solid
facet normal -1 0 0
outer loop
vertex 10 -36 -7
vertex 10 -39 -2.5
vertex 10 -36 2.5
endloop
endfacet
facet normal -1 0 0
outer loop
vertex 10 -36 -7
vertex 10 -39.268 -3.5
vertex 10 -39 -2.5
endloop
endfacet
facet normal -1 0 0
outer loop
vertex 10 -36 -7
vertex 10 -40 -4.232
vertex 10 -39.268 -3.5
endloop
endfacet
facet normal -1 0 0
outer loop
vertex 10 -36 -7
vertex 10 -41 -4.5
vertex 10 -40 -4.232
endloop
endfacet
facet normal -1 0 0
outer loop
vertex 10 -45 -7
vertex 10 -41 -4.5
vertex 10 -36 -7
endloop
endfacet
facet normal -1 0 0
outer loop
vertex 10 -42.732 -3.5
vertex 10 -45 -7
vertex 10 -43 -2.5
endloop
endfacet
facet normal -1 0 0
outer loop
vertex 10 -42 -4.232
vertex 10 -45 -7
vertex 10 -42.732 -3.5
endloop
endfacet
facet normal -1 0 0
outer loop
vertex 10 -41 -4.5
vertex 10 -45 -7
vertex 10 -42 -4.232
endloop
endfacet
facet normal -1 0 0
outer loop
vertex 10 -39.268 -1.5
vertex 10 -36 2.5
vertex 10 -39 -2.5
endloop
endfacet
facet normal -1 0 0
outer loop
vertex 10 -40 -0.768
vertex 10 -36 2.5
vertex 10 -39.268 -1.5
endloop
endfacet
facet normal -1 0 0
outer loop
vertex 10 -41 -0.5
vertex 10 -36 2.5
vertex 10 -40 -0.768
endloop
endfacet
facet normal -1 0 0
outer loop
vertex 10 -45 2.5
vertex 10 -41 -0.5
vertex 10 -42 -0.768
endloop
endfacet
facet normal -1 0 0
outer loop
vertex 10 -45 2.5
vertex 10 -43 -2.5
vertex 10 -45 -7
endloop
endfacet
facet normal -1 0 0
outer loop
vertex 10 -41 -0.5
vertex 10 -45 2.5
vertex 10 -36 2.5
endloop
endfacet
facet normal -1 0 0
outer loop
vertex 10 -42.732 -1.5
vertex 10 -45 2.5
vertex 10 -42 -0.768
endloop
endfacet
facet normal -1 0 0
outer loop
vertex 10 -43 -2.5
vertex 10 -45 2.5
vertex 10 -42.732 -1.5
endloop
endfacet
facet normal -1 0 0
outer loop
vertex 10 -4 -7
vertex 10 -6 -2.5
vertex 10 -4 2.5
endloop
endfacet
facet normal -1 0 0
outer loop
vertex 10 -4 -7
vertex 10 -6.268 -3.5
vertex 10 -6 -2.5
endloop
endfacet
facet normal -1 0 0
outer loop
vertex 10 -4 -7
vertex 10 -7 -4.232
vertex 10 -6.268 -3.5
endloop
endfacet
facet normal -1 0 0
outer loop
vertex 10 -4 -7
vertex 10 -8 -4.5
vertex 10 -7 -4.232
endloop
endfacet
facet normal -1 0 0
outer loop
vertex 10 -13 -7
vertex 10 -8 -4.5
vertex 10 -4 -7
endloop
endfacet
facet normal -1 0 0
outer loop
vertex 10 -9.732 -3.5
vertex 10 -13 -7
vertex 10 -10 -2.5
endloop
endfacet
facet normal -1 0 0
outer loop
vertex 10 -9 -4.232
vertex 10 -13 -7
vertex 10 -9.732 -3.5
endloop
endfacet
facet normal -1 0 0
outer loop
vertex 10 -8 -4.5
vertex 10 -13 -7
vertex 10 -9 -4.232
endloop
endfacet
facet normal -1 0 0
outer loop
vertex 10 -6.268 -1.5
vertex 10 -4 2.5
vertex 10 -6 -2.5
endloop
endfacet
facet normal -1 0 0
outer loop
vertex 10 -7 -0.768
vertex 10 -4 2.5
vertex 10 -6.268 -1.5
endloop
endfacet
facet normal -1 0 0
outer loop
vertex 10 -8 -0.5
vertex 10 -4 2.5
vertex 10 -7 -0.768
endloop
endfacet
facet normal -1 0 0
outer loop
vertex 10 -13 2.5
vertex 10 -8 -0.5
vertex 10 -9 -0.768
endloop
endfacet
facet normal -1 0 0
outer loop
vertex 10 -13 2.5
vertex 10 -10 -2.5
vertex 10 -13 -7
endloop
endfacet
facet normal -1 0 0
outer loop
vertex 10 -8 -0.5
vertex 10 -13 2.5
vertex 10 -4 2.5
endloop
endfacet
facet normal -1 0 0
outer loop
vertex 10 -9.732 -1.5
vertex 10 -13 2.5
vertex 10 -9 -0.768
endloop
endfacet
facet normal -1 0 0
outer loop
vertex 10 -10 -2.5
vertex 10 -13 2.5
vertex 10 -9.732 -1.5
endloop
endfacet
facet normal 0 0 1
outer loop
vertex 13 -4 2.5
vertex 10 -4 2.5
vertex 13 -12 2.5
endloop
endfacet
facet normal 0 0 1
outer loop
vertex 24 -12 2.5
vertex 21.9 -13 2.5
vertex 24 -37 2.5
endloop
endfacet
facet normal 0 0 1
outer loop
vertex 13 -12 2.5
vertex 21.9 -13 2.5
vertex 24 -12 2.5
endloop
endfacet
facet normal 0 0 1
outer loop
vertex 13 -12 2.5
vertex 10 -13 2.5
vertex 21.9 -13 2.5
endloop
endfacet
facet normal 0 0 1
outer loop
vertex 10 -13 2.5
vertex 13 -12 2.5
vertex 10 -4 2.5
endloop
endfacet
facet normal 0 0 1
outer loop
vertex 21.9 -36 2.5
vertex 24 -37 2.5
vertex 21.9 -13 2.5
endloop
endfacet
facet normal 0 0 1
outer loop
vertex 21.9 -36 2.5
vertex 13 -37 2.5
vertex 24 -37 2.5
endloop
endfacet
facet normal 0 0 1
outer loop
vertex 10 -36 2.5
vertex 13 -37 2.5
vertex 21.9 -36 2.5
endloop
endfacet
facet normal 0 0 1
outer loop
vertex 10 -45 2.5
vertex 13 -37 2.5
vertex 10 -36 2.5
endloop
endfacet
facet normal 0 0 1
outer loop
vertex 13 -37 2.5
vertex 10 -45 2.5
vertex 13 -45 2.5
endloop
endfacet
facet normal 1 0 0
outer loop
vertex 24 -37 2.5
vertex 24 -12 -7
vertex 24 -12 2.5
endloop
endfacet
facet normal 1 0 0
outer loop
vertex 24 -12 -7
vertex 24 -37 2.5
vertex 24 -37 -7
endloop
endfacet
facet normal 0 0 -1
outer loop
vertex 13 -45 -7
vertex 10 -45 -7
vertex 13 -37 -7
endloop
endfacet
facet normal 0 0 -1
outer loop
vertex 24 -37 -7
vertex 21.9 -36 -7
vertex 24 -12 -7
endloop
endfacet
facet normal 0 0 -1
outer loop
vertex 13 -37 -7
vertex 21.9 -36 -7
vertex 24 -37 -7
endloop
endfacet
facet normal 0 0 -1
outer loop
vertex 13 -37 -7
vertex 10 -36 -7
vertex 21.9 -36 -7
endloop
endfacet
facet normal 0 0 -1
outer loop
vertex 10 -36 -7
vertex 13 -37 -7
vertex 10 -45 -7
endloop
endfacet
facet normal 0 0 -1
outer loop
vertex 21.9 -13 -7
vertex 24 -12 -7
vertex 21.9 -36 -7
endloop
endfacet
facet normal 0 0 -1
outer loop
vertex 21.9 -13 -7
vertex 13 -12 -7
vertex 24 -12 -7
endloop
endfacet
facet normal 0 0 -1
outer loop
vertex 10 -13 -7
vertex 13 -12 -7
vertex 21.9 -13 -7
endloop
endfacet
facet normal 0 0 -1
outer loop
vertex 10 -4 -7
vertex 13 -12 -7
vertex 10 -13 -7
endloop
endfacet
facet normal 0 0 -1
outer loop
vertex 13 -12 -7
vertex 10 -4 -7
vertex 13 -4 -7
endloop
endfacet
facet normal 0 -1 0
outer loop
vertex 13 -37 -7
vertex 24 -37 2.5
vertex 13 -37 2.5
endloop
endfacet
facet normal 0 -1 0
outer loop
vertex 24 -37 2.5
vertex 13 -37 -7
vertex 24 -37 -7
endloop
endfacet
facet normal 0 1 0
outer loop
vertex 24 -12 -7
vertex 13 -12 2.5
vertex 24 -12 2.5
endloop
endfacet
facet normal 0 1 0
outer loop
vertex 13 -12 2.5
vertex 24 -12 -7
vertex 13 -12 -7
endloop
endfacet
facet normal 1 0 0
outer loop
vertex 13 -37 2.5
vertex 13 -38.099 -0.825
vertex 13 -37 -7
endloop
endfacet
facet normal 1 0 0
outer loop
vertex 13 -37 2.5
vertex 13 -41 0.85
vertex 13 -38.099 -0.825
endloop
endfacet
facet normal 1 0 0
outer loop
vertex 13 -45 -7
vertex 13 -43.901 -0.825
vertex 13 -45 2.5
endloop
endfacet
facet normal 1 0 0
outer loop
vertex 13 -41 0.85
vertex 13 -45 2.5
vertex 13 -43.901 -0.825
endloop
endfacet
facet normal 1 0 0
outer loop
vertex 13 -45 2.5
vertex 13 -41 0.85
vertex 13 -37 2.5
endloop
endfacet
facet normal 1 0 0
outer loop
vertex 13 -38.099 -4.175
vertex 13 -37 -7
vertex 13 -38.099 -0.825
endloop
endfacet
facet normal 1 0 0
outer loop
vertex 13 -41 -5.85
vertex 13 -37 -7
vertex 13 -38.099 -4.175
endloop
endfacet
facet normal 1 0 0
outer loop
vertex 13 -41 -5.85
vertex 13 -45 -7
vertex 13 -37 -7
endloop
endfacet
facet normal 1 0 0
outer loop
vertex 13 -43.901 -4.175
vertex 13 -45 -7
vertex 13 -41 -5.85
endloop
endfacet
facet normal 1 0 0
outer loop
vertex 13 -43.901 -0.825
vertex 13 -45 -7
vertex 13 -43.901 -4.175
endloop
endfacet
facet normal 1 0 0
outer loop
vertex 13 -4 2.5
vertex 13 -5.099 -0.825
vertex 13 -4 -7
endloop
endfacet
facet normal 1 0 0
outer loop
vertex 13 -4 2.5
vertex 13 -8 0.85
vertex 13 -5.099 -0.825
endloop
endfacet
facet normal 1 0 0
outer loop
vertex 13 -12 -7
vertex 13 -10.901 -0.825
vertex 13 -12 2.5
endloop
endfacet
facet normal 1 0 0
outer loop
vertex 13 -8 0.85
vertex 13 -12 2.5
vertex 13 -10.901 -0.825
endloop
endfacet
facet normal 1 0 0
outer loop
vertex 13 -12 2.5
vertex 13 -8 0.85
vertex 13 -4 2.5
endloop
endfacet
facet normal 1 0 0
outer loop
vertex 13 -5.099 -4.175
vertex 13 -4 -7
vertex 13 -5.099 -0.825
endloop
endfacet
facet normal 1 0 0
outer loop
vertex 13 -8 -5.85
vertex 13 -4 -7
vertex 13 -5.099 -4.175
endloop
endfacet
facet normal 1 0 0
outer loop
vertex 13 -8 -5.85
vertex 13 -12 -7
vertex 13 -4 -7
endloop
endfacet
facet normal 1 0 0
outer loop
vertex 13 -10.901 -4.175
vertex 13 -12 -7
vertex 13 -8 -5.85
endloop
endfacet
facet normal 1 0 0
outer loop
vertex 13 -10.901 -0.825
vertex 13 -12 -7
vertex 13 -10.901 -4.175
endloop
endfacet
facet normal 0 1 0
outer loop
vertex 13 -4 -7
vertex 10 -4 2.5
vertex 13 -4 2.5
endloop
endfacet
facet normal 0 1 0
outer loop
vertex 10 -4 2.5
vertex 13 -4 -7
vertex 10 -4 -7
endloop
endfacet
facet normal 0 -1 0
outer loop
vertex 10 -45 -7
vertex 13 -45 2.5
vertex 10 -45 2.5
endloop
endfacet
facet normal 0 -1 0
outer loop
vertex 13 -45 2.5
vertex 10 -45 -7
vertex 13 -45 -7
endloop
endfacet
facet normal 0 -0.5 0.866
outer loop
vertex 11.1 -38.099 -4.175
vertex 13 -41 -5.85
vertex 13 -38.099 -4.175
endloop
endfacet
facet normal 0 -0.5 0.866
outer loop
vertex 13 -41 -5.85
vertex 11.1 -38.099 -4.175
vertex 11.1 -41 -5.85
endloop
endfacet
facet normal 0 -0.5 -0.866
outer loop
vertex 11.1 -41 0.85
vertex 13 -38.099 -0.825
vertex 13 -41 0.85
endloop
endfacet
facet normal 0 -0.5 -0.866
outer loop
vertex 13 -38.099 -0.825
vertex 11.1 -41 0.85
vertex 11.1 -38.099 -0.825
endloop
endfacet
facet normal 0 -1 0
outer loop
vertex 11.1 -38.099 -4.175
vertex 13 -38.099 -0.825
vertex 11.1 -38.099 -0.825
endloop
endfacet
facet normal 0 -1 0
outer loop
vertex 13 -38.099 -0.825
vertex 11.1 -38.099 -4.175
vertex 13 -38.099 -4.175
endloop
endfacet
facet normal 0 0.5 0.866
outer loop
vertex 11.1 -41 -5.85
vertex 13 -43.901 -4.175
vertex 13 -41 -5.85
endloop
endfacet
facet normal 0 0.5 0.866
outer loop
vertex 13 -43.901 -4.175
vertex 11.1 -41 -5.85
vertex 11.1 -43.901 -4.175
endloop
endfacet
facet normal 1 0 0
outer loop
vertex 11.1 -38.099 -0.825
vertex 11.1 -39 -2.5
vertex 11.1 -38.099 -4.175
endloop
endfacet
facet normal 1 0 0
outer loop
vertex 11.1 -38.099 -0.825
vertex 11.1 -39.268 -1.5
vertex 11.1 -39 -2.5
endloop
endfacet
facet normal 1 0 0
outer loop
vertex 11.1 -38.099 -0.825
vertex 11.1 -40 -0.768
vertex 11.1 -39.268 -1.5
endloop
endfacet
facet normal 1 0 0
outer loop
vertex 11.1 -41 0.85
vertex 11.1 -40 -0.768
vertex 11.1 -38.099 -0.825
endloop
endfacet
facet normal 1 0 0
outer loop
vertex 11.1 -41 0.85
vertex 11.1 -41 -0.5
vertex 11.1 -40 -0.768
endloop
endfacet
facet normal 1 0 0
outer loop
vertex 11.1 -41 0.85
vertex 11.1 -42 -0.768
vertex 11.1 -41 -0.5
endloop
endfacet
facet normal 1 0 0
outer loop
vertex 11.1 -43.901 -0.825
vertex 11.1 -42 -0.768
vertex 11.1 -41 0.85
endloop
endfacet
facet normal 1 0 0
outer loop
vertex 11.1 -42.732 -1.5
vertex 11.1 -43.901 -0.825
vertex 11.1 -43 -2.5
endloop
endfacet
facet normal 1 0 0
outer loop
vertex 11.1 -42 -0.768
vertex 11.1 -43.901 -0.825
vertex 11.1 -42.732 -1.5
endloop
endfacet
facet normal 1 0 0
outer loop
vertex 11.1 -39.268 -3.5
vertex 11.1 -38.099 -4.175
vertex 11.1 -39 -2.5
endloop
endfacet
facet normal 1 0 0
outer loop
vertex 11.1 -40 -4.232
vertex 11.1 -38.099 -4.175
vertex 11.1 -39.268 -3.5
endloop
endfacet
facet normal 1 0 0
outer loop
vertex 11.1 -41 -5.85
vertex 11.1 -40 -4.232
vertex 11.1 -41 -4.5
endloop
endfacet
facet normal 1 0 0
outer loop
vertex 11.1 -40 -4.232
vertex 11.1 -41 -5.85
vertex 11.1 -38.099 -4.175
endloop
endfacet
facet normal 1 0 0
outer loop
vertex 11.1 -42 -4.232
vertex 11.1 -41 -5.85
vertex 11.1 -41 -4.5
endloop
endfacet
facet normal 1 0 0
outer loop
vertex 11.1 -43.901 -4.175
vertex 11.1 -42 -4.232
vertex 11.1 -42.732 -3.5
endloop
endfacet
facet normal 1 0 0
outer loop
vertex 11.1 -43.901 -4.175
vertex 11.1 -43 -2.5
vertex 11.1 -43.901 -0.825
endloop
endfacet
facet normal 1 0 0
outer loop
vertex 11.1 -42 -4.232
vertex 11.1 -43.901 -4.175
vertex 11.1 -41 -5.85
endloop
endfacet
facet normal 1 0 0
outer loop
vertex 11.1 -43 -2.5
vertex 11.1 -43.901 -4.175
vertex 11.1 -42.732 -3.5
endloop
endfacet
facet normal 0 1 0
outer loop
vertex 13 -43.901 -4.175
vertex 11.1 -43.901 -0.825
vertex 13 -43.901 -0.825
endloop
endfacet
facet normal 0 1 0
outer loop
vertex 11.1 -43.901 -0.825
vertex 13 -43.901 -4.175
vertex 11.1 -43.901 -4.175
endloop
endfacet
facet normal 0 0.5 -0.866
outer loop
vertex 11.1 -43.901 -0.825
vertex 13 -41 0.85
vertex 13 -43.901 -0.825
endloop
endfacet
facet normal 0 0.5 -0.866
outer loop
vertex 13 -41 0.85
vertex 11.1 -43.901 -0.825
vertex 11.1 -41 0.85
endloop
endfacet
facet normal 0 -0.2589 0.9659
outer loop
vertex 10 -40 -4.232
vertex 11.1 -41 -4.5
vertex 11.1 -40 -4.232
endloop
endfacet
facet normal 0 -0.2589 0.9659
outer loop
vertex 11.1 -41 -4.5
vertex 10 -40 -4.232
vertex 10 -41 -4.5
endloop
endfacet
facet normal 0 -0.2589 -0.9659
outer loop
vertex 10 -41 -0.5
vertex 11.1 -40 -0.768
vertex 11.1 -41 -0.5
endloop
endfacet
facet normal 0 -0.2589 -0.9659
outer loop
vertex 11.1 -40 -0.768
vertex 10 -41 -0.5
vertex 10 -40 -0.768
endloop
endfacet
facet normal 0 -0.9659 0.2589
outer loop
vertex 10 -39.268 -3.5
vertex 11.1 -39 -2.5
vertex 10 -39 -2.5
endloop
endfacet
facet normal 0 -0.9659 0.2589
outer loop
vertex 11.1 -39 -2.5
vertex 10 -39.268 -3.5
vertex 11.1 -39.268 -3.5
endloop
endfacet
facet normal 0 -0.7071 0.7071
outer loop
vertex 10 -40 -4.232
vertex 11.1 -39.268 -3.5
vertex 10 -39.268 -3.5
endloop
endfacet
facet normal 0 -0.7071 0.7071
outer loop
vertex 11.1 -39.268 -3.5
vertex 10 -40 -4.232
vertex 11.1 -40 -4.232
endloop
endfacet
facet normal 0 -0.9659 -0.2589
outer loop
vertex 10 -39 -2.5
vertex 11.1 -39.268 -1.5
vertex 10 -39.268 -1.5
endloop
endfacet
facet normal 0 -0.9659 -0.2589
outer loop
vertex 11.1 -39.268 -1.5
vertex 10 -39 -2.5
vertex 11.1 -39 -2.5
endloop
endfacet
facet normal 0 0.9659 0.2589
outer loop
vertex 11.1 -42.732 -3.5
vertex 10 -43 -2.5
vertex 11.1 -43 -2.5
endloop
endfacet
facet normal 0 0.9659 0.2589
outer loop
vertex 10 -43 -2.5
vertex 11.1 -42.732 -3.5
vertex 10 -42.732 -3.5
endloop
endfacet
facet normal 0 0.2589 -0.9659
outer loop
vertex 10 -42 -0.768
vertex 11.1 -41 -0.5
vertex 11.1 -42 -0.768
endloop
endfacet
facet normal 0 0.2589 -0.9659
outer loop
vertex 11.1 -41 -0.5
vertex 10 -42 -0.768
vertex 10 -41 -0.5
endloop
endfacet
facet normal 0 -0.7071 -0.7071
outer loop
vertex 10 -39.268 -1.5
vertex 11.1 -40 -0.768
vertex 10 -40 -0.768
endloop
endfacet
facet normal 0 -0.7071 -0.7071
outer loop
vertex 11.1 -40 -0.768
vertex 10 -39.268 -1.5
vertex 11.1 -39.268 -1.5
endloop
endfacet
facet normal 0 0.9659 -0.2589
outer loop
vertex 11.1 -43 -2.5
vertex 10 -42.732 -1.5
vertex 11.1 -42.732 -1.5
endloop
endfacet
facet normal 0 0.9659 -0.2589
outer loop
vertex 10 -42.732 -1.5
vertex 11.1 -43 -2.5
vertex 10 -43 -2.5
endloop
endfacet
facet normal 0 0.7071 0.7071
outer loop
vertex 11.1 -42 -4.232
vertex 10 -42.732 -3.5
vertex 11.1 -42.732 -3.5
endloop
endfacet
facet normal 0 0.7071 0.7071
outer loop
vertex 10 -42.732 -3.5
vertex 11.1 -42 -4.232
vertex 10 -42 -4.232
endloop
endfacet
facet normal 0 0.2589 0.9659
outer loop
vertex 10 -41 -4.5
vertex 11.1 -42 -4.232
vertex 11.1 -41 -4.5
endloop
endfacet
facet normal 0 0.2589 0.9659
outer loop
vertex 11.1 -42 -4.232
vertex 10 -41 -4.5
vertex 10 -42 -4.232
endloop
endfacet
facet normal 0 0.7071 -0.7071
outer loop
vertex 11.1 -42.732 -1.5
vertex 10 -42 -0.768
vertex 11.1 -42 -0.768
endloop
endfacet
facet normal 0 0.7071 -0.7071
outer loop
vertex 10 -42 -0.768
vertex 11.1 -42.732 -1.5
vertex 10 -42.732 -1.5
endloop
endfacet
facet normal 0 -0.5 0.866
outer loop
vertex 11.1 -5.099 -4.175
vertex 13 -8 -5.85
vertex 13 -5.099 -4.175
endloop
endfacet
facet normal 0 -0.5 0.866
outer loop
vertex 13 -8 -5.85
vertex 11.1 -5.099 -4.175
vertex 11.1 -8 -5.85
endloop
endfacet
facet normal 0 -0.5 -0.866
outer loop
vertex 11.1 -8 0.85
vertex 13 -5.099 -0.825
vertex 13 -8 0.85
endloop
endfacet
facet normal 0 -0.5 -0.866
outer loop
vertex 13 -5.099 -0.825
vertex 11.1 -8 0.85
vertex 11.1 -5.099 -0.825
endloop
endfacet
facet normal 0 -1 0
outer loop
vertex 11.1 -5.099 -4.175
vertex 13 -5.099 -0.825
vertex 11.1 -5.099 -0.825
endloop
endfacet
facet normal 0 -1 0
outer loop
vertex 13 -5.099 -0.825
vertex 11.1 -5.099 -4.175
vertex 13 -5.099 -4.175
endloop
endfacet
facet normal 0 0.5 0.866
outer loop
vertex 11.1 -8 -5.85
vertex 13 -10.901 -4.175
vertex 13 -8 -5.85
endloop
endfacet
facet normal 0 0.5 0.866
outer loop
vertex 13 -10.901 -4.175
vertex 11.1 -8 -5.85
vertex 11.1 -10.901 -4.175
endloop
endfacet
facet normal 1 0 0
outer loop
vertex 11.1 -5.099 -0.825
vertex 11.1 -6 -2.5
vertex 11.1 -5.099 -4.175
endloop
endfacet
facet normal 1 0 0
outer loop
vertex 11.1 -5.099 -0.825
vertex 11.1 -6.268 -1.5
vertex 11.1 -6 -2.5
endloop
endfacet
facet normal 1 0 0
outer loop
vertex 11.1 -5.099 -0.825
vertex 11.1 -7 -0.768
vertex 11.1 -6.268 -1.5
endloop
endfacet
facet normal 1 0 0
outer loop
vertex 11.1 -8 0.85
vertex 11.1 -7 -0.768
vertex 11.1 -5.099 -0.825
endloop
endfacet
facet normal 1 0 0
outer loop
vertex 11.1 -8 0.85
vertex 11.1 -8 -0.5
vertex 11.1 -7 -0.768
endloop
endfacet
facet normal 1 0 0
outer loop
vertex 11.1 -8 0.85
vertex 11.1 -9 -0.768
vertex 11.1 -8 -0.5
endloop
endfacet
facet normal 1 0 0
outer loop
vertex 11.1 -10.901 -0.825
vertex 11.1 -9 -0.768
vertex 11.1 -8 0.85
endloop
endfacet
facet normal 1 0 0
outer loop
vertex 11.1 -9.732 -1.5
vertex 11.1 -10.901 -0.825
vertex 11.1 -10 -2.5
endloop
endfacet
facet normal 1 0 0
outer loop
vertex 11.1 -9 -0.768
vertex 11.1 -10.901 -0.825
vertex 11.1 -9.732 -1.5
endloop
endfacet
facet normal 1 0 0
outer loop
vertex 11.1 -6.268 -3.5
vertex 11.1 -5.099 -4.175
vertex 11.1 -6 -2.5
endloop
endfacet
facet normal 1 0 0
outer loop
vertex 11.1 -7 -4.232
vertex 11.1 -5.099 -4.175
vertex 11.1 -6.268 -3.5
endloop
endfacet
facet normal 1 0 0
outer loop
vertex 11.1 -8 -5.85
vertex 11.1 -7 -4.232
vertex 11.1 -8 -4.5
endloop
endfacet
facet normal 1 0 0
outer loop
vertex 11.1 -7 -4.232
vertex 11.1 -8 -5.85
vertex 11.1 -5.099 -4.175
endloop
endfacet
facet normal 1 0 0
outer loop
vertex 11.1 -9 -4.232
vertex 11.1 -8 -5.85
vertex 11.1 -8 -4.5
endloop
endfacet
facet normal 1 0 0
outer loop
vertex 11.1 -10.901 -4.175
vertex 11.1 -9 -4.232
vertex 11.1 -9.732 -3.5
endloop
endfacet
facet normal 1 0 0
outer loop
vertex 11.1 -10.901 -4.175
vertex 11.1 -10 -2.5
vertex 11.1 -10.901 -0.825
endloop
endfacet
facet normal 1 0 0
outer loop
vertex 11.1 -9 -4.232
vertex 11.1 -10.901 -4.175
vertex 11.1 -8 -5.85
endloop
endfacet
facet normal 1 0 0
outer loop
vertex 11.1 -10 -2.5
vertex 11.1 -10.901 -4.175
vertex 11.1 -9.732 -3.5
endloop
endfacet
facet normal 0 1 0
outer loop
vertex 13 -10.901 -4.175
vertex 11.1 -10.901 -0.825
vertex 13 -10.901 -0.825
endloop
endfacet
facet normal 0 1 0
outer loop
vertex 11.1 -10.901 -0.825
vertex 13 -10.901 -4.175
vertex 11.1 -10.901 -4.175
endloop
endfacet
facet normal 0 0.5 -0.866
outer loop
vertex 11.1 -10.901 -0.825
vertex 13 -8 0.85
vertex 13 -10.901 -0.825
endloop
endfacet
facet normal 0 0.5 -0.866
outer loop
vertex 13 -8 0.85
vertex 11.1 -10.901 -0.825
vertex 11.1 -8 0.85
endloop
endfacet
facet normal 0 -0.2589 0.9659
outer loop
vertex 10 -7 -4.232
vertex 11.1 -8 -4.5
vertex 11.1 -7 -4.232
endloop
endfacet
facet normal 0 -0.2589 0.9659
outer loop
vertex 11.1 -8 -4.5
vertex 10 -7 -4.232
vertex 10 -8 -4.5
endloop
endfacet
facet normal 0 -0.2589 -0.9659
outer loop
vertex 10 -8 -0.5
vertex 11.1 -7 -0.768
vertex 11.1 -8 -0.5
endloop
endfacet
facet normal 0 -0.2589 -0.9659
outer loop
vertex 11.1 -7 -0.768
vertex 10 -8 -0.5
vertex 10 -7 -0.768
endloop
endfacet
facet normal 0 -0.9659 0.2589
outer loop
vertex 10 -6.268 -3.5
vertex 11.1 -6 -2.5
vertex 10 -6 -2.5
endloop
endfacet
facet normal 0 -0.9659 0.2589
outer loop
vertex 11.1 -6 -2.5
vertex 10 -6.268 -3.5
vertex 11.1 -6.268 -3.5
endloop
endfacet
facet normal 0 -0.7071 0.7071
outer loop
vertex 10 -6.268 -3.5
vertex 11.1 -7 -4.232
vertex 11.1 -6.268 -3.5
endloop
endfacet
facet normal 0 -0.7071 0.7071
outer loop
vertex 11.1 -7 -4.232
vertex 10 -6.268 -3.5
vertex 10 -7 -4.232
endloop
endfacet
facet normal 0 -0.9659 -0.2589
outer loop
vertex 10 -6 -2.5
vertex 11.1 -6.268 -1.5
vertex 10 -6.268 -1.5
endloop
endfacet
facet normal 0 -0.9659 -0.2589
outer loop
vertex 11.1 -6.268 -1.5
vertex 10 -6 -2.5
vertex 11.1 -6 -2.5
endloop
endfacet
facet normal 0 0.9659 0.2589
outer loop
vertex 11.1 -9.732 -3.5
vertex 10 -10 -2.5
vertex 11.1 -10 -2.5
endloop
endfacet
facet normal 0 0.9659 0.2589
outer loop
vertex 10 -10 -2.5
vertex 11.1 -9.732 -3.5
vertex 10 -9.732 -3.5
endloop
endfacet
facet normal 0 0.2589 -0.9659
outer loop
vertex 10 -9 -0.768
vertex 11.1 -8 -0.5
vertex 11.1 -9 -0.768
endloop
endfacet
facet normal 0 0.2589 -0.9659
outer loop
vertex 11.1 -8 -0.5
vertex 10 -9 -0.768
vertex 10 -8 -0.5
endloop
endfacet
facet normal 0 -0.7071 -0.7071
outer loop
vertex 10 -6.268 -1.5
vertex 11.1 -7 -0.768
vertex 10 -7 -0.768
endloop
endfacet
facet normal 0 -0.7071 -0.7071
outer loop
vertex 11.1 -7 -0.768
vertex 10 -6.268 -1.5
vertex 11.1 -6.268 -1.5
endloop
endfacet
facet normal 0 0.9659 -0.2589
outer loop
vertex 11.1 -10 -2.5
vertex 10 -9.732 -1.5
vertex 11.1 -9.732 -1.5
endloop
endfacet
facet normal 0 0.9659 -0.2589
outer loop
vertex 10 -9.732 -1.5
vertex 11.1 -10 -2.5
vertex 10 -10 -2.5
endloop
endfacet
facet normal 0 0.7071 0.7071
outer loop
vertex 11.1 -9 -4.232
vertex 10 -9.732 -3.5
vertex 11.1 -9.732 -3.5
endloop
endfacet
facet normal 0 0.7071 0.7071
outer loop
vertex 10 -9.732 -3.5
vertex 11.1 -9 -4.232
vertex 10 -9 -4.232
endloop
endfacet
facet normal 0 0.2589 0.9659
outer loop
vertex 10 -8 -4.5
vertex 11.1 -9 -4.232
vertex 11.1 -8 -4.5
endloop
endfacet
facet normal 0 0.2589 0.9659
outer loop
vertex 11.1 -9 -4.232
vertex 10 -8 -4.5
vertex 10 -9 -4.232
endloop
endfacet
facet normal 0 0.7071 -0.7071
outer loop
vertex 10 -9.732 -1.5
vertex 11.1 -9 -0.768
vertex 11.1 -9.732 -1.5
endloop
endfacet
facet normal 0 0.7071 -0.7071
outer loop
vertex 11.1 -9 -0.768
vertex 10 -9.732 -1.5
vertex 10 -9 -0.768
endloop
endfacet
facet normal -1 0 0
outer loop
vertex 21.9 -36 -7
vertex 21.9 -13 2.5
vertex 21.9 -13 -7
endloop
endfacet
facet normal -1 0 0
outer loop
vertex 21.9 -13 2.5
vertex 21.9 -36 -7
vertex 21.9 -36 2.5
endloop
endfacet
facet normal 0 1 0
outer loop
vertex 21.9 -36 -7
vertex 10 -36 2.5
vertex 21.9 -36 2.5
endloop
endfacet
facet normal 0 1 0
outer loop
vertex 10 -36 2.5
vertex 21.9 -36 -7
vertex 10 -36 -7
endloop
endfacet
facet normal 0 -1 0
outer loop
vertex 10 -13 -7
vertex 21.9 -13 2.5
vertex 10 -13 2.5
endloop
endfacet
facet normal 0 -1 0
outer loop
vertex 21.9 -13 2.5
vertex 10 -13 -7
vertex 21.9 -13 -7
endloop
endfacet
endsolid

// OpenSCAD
//  press-plate for the servo to hold it
translate([10,-37,-7])
        difference()
        {
            union()
            {
                cube( [14,25,9.5] ); // main shape
                translate( [0,-8,0] ) cube( [3,25+2*8,9.5] ); // mount around screws
            }
            translate([-0.1,1,-0.1])
                cube( [12,23,10] );
            translate([1.1,-4,4.5]) 
                rotate([0,90,0])
                    {
                        cylinder( d=6.7, h=2, $fn=6 ); // 3mm nut
                        translate([0,0,-2]) cylinder( d=4, h=5, $fn=12 ); // 3mm screw
                    }
            translate([1.1,25+4,4.5]) 
                rotate([0,90,0])
                    {
                        cylinder( d=6.7, h=2, $fn=6 ); // 3mm nut
                        translate([0,0,-2]) cylinder( d=4, h=5, $fn=12 ); // 3mm screw
                    }
        }
